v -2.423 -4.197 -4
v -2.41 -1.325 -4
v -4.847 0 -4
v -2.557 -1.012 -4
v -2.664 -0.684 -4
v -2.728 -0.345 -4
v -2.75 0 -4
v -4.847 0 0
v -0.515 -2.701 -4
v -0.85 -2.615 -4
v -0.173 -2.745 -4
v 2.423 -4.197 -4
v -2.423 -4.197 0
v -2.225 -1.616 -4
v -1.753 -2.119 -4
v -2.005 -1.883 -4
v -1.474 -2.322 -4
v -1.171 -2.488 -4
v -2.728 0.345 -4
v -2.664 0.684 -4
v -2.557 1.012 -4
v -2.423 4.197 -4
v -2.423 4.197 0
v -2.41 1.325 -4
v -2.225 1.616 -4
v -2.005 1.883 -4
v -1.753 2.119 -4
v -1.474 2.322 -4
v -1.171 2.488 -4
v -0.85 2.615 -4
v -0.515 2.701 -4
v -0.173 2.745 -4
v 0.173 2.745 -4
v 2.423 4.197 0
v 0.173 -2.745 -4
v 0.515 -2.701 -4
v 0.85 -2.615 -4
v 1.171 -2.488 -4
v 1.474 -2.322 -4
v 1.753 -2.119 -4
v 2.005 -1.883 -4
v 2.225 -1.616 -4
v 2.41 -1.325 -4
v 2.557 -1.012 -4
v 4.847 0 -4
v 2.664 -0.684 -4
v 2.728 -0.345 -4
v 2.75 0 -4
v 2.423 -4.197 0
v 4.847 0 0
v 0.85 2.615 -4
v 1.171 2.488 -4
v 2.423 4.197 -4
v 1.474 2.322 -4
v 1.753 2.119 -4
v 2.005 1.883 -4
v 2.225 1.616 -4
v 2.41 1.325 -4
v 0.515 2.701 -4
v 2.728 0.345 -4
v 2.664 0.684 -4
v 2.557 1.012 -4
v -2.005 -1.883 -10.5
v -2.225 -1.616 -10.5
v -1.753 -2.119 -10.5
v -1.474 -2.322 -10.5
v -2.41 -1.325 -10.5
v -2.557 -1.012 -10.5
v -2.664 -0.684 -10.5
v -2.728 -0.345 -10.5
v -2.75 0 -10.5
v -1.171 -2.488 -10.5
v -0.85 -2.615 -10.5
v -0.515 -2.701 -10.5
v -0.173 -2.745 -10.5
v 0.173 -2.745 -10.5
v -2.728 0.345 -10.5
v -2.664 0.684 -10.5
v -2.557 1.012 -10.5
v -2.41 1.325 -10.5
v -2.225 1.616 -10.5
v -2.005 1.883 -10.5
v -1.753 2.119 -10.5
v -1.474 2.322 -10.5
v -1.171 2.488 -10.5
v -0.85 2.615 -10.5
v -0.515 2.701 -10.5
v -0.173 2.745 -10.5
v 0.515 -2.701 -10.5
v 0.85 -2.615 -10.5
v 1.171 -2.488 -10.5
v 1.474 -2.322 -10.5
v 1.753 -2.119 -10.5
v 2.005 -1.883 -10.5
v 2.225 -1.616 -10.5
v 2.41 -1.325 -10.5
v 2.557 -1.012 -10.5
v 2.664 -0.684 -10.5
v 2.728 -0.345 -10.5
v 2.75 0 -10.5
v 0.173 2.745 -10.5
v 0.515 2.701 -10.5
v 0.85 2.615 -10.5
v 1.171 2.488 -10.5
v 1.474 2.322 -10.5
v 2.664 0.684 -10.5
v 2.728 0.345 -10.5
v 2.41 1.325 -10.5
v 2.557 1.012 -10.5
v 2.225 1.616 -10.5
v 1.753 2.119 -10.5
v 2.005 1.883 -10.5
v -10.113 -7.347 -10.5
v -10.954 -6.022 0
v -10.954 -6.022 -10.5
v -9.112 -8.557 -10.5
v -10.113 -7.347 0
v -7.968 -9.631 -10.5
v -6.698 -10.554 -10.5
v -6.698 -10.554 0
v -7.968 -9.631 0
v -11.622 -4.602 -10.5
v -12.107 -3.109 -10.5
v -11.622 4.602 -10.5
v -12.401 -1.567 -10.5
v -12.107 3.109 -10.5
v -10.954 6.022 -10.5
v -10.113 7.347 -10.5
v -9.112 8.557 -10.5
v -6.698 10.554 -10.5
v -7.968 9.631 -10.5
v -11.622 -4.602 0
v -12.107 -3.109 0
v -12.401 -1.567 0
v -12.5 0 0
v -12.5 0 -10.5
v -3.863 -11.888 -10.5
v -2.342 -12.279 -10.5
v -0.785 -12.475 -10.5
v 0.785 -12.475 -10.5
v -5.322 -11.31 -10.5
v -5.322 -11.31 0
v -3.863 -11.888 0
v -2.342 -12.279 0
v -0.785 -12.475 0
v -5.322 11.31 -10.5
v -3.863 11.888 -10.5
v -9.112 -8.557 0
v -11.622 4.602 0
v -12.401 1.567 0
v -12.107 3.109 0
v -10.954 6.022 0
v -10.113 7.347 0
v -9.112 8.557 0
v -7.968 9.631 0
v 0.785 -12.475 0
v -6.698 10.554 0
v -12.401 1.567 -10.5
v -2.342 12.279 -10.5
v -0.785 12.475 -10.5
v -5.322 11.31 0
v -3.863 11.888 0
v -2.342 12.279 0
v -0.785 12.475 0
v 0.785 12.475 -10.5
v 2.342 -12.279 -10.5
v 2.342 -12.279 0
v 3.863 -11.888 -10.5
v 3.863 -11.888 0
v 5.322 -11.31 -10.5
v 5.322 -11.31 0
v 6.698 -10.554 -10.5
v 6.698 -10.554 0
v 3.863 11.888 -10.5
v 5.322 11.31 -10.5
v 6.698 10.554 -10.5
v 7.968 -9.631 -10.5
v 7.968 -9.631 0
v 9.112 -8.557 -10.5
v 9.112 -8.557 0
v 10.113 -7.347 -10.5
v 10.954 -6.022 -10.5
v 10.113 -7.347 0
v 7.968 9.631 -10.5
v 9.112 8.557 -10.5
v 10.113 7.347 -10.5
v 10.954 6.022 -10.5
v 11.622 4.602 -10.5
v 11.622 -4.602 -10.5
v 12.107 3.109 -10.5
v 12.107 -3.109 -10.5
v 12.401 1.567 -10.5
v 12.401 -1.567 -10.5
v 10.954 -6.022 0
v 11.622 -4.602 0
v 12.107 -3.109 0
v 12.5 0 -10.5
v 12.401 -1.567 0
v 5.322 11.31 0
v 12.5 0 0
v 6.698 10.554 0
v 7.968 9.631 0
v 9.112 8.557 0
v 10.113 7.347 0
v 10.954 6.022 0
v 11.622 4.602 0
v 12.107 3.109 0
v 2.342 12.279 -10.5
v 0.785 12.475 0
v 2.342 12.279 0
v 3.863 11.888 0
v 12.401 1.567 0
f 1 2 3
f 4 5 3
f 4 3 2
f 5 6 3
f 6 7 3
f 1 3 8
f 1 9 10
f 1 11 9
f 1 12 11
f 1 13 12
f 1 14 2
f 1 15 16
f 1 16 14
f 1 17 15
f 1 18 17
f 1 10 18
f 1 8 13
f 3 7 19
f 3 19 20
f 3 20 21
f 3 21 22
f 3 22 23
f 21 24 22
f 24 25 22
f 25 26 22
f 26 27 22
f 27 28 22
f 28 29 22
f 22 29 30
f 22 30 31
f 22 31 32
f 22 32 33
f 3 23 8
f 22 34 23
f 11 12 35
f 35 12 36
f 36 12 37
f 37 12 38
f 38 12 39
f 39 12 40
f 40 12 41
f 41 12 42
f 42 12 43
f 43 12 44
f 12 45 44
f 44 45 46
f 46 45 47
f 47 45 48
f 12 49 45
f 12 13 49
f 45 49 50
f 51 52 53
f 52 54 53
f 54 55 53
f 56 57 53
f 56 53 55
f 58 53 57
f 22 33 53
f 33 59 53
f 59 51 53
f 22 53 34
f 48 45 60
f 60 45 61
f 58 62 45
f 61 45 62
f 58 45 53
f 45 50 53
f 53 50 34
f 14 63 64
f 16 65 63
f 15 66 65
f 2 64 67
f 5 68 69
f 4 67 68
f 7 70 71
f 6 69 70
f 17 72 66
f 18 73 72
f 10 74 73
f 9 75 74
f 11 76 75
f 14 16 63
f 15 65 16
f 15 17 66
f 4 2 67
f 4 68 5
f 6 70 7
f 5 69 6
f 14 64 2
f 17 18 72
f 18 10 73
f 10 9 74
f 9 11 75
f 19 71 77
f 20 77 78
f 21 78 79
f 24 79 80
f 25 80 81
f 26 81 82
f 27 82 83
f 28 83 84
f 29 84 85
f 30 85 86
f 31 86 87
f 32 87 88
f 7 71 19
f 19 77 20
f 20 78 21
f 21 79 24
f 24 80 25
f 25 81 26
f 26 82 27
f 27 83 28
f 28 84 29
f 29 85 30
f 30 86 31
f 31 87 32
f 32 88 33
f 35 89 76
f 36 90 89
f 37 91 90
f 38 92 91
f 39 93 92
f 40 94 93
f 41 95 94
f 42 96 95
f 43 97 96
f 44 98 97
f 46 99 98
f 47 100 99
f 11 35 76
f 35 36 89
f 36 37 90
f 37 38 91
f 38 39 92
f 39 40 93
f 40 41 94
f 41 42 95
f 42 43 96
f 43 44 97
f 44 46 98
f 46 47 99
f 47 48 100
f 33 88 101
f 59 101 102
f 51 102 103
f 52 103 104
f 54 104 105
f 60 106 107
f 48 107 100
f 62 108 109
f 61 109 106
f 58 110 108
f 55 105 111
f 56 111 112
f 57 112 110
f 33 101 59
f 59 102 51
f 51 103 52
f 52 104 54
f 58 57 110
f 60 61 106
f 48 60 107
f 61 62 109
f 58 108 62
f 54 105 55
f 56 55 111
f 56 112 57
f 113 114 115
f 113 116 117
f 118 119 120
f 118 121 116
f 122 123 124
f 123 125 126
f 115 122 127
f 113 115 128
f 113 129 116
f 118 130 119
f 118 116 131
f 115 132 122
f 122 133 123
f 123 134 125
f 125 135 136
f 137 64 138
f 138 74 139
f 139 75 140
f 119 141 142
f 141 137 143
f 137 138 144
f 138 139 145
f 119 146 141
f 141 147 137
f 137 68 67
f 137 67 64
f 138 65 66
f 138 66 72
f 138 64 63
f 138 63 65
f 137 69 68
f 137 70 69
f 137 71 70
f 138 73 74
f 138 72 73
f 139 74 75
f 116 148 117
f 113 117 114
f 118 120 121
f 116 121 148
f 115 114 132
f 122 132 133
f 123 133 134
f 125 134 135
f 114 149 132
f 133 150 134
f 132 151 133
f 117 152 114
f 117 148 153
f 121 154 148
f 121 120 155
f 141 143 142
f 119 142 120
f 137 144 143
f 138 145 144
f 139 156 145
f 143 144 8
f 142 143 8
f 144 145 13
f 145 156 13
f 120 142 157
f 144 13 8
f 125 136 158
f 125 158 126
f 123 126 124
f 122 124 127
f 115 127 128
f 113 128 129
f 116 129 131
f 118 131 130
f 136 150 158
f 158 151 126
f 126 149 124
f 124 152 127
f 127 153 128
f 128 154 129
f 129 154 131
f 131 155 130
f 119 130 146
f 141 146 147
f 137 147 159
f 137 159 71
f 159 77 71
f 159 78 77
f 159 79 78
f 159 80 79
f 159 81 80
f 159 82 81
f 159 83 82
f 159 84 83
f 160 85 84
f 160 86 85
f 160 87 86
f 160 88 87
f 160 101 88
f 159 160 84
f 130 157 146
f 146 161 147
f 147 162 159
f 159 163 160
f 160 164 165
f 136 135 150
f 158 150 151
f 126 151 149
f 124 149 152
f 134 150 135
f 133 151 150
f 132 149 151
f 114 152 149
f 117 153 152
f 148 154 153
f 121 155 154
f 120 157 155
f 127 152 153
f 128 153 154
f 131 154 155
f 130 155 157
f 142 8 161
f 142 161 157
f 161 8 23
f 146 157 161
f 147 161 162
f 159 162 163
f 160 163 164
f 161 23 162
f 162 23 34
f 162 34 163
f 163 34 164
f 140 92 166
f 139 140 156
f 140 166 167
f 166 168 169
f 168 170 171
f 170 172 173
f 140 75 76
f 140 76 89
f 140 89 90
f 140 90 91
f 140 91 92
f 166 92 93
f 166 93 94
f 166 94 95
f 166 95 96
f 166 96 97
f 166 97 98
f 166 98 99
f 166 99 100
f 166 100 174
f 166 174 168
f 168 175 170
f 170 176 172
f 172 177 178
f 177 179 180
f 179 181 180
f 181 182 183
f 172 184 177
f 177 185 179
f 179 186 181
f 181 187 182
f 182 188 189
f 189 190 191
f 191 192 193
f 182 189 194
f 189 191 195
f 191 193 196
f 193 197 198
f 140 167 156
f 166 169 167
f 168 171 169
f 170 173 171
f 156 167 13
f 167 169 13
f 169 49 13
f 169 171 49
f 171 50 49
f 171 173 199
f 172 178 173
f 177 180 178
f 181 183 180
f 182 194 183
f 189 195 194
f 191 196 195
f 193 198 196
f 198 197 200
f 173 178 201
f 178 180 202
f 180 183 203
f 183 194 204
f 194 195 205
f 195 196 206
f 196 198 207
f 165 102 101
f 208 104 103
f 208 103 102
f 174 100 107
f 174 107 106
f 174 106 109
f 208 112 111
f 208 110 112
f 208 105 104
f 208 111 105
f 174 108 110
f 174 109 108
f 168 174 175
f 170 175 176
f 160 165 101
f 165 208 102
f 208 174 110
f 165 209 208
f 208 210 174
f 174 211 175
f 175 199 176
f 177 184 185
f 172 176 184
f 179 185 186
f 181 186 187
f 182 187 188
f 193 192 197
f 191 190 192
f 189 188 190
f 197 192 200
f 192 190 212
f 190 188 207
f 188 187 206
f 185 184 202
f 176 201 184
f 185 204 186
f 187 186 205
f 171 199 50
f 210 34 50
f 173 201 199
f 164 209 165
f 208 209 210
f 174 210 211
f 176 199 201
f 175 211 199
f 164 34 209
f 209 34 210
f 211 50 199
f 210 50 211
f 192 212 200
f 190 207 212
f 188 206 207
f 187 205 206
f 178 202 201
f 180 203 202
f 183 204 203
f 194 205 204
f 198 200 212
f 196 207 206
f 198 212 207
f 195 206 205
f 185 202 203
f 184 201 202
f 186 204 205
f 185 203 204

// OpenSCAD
$fn = 50;


difference() {
	union() {
		translate(v = [0, 0, -10.5000000000]) {
			cylinder(h = 10.5000000000, r = 12.5000000000);
		}
	}
	union() {
		translate(v = [0, 0, 0]) {
			rotate(a = [0, 0, 0]) {
				difference() {
					union() {
						translate(v = [0, 0, -4]) {
							linear_extrude(height = 4) {
								polygon(points = [[4.8468000000, 0.0000000000], [2.4234000000, 4.1974519271], [-2.4234000000, 4.1974519271], [-4.8468000000, 0.0000000000], [-2.4234000000, -4.1974519271], [2.4234000000, -4.1974519271]]);
							}
						}
					}
					union();
				}
			}
		}
		#translate(v = [0, 0, -100.0000000000]) {
			cylinder(h = 200, r = 2.7500000000);
		}
	}
}
